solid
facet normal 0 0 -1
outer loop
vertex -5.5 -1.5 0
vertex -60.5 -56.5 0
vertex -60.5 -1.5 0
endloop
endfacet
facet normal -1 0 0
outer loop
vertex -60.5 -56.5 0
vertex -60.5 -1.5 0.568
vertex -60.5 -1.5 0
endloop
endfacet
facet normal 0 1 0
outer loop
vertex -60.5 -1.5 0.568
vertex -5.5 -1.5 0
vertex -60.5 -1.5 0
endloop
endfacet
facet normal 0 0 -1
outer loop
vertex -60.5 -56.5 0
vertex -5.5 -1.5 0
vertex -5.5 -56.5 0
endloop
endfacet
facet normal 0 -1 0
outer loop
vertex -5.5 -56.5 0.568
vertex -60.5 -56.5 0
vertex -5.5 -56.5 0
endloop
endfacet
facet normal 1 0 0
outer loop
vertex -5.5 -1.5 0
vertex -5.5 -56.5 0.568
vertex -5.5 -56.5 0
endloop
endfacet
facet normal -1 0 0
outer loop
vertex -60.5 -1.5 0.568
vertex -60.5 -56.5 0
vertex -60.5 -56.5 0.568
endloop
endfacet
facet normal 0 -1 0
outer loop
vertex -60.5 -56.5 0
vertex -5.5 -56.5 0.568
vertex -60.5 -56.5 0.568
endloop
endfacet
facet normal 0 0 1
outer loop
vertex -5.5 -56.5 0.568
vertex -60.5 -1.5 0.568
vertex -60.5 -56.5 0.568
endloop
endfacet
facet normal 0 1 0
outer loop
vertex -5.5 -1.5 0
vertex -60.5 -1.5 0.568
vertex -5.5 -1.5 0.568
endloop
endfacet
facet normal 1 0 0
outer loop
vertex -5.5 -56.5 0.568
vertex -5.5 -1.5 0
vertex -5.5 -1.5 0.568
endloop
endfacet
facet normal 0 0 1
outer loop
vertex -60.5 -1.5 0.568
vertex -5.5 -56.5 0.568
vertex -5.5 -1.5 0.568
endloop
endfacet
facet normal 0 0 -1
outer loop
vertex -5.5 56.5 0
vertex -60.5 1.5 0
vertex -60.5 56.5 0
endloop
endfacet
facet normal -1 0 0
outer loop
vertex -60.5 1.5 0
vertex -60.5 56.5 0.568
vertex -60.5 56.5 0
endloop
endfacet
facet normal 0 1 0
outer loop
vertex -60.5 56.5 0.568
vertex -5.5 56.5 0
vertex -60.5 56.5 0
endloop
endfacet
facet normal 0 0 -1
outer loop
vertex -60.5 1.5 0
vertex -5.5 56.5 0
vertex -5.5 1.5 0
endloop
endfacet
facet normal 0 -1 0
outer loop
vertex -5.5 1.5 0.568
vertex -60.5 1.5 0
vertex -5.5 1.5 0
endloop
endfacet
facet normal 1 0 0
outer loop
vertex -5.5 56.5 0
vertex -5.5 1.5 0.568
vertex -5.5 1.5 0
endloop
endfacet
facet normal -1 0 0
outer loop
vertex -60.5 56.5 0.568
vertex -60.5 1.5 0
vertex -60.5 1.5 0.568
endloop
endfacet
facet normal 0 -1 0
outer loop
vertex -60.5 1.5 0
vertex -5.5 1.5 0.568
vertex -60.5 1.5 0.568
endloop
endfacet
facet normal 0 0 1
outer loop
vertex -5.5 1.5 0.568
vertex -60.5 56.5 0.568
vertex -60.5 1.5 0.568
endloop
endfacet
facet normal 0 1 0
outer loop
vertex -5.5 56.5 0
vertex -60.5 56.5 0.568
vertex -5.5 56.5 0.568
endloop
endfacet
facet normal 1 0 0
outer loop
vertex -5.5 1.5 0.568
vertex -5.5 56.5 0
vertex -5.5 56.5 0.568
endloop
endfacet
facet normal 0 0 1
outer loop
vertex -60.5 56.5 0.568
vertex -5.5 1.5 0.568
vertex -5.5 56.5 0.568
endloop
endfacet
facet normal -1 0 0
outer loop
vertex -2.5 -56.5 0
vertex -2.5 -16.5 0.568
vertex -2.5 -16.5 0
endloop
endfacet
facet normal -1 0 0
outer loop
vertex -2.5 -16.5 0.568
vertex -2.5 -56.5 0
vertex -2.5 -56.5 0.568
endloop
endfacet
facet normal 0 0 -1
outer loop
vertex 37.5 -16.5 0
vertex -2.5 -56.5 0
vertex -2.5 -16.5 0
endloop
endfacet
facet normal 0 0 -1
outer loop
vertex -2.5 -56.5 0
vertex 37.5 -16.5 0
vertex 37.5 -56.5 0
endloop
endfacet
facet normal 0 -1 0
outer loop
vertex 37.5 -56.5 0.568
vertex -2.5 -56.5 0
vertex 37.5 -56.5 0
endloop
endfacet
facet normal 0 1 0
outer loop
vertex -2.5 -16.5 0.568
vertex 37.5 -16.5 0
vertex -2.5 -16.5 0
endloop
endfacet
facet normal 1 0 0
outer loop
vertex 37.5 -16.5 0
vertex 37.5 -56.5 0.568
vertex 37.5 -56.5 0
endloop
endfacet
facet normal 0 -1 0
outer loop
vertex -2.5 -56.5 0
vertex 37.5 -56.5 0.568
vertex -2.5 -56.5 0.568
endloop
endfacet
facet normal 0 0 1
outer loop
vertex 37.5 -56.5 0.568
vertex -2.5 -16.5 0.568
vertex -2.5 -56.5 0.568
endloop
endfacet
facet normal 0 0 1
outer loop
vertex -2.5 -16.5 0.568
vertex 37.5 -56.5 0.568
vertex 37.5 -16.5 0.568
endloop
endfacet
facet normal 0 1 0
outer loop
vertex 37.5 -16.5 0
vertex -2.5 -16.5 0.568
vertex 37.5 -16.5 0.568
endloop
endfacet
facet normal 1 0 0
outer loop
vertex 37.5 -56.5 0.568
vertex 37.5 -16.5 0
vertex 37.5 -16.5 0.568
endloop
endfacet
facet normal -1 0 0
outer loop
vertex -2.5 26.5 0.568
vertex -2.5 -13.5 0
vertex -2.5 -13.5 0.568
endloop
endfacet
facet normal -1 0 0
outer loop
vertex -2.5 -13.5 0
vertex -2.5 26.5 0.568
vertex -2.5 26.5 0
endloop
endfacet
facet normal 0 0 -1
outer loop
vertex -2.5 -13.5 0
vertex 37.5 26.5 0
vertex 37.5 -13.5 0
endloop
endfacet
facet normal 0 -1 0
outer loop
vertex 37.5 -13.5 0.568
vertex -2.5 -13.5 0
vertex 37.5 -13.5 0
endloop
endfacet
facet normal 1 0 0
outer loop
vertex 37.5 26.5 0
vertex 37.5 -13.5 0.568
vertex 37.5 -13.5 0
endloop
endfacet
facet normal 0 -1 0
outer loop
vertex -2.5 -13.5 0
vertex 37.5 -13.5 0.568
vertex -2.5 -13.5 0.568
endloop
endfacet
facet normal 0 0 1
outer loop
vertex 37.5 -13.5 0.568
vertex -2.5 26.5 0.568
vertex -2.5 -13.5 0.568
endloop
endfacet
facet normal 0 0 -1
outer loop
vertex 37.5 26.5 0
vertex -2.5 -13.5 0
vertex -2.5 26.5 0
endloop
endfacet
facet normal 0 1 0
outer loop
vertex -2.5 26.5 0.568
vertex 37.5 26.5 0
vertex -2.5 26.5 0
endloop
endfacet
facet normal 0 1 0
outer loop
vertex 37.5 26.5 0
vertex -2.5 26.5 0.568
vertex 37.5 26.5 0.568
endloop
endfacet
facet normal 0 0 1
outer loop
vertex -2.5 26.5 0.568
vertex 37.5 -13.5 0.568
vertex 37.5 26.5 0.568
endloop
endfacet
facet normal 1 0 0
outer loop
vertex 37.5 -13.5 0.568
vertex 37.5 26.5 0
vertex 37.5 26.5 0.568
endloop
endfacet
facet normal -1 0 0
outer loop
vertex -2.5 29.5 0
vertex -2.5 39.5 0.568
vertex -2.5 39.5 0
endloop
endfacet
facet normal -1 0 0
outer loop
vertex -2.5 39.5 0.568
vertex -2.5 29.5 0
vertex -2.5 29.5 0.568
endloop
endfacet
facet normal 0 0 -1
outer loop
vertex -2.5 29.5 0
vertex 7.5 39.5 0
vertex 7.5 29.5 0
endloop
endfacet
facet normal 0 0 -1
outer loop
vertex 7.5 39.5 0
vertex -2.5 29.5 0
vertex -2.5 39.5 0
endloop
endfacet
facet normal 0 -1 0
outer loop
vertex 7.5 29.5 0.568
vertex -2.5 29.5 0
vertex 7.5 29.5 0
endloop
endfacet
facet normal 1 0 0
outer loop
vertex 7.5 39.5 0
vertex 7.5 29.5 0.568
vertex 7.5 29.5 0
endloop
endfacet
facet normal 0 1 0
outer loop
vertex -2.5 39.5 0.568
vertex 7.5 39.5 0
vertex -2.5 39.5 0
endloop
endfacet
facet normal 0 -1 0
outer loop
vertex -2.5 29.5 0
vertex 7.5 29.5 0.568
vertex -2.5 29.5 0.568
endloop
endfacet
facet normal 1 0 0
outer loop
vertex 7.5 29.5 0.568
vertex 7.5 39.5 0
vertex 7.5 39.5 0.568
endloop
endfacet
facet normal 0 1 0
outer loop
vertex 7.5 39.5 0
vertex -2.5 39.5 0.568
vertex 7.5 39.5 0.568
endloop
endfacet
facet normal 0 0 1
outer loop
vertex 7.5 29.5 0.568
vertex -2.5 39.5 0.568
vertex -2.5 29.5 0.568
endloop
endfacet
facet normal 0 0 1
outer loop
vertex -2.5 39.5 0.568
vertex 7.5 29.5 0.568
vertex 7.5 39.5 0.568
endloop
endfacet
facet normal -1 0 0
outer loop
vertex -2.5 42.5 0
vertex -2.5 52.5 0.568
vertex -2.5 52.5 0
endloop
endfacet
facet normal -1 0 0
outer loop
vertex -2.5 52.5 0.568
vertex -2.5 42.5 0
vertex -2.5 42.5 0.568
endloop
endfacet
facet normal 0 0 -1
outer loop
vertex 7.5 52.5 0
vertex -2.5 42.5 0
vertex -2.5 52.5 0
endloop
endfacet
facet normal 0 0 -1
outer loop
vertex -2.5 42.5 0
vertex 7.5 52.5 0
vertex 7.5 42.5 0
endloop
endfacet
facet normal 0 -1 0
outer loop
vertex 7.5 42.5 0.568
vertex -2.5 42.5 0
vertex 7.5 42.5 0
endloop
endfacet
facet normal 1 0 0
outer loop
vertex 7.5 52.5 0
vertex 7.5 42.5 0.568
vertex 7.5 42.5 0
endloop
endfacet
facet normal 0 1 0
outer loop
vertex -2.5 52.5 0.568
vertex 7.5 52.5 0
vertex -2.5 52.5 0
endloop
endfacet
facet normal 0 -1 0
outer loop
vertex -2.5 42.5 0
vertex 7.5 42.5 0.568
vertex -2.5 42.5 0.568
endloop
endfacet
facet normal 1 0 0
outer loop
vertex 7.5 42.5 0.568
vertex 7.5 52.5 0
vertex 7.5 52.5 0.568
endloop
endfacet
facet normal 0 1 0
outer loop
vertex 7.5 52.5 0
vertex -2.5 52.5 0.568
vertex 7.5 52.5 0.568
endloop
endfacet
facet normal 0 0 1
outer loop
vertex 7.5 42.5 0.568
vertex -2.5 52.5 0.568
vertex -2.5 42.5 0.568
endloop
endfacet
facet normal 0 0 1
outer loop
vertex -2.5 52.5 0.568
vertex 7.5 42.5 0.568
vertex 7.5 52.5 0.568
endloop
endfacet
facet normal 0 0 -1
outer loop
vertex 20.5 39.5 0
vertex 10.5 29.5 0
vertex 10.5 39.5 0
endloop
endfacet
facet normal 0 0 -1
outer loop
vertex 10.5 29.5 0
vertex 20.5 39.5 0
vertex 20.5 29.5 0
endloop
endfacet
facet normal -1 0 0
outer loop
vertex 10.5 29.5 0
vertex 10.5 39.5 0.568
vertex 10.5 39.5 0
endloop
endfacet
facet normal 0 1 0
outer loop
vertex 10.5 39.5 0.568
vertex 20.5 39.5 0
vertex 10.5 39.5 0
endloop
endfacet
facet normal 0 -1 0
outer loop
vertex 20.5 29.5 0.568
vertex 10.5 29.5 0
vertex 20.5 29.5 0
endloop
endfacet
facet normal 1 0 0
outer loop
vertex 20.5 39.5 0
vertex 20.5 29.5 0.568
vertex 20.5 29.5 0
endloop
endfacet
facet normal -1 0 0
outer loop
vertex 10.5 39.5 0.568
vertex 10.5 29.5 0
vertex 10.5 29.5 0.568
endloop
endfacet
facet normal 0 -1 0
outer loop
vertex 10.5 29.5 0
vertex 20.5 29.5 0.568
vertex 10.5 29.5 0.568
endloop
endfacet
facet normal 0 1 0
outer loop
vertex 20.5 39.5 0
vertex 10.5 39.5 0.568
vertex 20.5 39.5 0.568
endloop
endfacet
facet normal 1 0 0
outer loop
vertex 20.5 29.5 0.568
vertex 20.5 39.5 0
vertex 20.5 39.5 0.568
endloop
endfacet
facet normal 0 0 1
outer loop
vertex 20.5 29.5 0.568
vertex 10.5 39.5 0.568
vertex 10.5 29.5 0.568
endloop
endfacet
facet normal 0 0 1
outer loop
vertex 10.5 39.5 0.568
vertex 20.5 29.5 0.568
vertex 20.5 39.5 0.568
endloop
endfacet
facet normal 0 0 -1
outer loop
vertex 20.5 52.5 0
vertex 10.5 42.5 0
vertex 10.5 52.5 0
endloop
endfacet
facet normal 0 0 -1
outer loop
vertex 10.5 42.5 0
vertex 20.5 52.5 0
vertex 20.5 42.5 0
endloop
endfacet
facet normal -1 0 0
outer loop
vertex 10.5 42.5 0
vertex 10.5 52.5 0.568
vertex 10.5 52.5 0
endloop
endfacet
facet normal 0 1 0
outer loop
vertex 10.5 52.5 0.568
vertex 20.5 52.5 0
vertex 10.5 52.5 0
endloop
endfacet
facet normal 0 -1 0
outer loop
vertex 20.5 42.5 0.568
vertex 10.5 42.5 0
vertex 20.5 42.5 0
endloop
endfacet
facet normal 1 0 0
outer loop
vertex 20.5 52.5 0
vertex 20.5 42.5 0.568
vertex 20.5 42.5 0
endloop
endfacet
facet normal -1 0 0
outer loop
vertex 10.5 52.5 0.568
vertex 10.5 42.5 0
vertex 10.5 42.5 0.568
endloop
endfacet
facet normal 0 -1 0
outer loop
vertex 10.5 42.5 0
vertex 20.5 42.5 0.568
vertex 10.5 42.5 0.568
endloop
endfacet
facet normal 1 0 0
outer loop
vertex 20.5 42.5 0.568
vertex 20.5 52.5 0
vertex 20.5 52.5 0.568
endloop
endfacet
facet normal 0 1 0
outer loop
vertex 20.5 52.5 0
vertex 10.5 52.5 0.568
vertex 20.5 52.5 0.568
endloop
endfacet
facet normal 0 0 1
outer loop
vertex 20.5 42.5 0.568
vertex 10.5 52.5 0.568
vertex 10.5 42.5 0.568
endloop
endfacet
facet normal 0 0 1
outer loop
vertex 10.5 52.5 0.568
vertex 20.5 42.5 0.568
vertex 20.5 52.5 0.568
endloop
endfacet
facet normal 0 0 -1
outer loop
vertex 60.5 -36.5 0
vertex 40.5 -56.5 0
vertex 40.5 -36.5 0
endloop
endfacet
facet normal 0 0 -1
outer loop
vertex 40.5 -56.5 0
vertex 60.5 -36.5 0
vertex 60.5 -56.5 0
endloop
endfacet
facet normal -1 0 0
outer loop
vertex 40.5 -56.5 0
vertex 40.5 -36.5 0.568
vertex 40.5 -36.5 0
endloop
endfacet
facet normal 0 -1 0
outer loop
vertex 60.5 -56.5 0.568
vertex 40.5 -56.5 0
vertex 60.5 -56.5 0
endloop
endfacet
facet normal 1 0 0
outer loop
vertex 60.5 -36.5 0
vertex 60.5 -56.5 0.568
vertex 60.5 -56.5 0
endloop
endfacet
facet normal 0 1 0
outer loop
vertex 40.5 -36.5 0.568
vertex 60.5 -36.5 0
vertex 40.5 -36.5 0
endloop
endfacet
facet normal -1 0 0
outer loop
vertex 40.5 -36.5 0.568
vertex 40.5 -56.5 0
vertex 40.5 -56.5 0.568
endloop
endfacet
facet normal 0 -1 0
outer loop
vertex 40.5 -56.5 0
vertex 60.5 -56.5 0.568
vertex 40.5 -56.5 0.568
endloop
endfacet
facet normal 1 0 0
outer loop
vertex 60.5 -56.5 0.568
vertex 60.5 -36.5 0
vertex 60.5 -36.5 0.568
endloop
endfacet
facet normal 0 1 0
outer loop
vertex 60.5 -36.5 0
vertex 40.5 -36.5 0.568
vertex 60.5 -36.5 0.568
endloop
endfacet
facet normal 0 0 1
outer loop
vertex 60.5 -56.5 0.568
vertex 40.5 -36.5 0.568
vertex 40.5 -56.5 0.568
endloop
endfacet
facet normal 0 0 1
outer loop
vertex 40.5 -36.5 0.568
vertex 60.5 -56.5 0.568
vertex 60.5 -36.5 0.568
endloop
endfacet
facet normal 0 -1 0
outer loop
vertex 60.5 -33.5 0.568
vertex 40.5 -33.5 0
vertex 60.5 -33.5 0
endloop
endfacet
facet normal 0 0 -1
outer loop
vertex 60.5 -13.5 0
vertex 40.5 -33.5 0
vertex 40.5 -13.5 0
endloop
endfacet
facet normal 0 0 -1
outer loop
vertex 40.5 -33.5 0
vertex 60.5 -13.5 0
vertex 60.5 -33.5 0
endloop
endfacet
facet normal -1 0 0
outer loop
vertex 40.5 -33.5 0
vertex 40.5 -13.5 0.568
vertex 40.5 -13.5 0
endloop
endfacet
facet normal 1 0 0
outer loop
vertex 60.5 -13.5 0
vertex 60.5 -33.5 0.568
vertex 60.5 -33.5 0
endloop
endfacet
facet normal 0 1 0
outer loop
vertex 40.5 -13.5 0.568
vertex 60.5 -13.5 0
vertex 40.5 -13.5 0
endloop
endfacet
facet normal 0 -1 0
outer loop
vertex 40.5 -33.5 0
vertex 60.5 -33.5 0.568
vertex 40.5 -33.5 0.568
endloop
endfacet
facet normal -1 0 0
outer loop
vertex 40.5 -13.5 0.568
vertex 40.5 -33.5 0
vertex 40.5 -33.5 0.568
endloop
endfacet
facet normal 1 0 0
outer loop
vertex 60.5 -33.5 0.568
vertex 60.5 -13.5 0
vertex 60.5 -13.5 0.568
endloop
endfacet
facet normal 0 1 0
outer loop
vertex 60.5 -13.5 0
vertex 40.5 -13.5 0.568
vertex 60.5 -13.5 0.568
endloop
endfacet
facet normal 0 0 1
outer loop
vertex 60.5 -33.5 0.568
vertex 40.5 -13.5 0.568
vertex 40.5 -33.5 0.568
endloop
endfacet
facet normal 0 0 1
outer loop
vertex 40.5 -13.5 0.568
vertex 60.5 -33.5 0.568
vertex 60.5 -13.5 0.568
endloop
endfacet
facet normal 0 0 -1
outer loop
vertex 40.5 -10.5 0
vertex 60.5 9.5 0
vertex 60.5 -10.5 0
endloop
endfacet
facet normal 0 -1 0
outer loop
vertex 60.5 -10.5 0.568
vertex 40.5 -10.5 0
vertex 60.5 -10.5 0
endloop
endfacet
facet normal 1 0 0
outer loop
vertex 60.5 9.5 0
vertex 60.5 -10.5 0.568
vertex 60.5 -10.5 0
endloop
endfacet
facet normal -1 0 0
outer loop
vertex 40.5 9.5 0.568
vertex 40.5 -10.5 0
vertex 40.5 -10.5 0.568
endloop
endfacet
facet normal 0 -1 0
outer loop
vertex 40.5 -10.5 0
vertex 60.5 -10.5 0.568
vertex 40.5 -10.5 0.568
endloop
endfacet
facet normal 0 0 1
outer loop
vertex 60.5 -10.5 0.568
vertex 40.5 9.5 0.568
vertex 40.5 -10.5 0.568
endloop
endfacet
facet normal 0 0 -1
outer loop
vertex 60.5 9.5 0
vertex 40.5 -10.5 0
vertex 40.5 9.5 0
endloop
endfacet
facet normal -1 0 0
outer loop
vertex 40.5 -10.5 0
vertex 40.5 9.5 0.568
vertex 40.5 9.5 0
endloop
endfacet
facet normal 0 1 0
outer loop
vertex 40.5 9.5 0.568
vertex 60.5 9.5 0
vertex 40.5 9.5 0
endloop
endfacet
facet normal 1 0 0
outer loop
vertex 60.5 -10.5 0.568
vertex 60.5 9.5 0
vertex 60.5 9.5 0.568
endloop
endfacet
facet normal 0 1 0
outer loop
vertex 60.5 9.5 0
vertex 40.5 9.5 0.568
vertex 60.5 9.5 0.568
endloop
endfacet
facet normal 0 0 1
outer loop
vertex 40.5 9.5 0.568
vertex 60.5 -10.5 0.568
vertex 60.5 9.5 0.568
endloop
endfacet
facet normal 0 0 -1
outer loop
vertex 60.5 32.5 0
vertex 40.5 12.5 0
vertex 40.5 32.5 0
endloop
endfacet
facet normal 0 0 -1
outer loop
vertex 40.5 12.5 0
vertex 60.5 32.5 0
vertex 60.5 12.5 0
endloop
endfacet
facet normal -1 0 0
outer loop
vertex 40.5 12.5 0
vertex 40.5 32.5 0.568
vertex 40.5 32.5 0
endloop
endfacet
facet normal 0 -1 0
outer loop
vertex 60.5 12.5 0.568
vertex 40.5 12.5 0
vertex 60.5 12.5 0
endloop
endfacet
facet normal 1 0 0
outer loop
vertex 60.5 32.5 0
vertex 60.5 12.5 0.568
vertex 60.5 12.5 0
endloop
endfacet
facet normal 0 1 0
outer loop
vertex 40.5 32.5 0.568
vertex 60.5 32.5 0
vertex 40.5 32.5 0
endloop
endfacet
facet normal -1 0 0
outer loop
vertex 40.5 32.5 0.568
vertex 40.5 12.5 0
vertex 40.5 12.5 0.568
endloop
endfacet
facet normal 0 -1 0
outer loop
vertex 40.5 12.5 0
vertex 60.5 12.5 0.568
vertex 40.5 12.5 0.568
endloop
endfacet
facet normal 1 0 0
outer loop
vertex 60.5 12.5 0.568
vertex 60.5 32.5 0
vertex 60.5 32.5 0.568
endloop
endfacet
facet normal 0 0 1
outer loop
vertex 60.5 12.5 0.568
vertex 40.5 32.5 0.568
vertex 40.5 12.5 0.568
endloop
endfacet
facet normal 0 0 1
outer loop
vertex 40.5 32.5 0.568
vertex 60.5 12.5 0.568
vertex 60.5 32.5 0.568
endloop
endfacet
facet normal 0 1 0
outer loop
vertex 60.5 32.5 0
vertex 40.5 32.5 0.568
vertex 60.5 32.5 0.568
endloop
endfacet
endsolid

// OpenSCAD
/* ---------------------------------------------------------------------------
   Calibration squares: flat squares of known area, one build plate

   PRINT IN GREEN FILAMENT.  The squares stand in for plant canopy, so they
   must be the colour the segmenter looks for.

   Twelve thin squares on one plate: four 10x10, four 20x20, two 40x40 and
   two 55x55 (mm), all `thickness` thick.  Z0 is the bed; every square lies
   flat on it.  The plate is centred on the origin.

   Layout, three columns, each separated by `gap`:
     left   - the two 55 squares, stacked
     middle - the two 40 squares, stacked, with the four 10 squares in a
              2 x 2 block below them
     right  - the four 20 squares, stacked
   Overall about 121 x 113 mm with the default gap.

   No [Build Plate] group: the file is already the whole plate, and the
   counts are fixed by the layout above.  No [Revision] stamp: engraving
   would remove green from the face and change the area being measured.

   REV 1.0: first version.
   --------------------------------------------------------------------------- */

/* [Squares] */
thickness = 0.568; // square thickness, mm  [0.2:0.001:3]
size_xl   = 55;    // largest square side, two copies, mm  [40:1:80]
size_l    = 40;    // large square side, two copies, mm  [20:1:55]
size_m    = 20;    // medium square side, four copies, mm  [10:1:40]
size_s    = 10;    // small square side, four copies, mm  [5:1:20]

/* [Layout] */
gap = 3; // space between squares, mm  [1:0.5:10]

/* [Render] */
$fn = $preview ? 32 : 96;
eps = 0.01;

/* [Hidden] */
col_l_x = 0;                        // left column's -X edge
col_m_x = col_l_x + size_xl + gap;  // middle column's -X edge
col_r_x = col_m_x + size_l + gap;   // right column's -X edge
small_y = 2 * (size_l + gap);       // bottom of the 2 x 2 block of small squares

plate_w = col_r_x + size_m;
plate_h = max(2 * size_xl + gap,
              small_y + 2 * size_s + gap,
              4 * size_m + 3 * gap);

module square_target(side) {
    color("green") cube([side, side, thickness]);
}

// n squares of `side`, stacked along +Y from (x, y)
module column_of(side, n, x, y = 0) {
    for (i = [0 : n - 1])
        translate([x, y + i * (side + gap), 0]) square_target(side);
}

module calibration_plate() {
    translate([-plate_w / 2, -plate_h / 2, 0]) {
        column_of(size_xl, 2, col_l_x);
        column_of(size_l, 2, col_m_x);
        for (i = [0 : 1])
            column_of(size_s, 2, col_m_x + i * (size_s + gap), small_y);
        column_of(size_m, 4, col_r_x);
    }
}

calibration_plate();
